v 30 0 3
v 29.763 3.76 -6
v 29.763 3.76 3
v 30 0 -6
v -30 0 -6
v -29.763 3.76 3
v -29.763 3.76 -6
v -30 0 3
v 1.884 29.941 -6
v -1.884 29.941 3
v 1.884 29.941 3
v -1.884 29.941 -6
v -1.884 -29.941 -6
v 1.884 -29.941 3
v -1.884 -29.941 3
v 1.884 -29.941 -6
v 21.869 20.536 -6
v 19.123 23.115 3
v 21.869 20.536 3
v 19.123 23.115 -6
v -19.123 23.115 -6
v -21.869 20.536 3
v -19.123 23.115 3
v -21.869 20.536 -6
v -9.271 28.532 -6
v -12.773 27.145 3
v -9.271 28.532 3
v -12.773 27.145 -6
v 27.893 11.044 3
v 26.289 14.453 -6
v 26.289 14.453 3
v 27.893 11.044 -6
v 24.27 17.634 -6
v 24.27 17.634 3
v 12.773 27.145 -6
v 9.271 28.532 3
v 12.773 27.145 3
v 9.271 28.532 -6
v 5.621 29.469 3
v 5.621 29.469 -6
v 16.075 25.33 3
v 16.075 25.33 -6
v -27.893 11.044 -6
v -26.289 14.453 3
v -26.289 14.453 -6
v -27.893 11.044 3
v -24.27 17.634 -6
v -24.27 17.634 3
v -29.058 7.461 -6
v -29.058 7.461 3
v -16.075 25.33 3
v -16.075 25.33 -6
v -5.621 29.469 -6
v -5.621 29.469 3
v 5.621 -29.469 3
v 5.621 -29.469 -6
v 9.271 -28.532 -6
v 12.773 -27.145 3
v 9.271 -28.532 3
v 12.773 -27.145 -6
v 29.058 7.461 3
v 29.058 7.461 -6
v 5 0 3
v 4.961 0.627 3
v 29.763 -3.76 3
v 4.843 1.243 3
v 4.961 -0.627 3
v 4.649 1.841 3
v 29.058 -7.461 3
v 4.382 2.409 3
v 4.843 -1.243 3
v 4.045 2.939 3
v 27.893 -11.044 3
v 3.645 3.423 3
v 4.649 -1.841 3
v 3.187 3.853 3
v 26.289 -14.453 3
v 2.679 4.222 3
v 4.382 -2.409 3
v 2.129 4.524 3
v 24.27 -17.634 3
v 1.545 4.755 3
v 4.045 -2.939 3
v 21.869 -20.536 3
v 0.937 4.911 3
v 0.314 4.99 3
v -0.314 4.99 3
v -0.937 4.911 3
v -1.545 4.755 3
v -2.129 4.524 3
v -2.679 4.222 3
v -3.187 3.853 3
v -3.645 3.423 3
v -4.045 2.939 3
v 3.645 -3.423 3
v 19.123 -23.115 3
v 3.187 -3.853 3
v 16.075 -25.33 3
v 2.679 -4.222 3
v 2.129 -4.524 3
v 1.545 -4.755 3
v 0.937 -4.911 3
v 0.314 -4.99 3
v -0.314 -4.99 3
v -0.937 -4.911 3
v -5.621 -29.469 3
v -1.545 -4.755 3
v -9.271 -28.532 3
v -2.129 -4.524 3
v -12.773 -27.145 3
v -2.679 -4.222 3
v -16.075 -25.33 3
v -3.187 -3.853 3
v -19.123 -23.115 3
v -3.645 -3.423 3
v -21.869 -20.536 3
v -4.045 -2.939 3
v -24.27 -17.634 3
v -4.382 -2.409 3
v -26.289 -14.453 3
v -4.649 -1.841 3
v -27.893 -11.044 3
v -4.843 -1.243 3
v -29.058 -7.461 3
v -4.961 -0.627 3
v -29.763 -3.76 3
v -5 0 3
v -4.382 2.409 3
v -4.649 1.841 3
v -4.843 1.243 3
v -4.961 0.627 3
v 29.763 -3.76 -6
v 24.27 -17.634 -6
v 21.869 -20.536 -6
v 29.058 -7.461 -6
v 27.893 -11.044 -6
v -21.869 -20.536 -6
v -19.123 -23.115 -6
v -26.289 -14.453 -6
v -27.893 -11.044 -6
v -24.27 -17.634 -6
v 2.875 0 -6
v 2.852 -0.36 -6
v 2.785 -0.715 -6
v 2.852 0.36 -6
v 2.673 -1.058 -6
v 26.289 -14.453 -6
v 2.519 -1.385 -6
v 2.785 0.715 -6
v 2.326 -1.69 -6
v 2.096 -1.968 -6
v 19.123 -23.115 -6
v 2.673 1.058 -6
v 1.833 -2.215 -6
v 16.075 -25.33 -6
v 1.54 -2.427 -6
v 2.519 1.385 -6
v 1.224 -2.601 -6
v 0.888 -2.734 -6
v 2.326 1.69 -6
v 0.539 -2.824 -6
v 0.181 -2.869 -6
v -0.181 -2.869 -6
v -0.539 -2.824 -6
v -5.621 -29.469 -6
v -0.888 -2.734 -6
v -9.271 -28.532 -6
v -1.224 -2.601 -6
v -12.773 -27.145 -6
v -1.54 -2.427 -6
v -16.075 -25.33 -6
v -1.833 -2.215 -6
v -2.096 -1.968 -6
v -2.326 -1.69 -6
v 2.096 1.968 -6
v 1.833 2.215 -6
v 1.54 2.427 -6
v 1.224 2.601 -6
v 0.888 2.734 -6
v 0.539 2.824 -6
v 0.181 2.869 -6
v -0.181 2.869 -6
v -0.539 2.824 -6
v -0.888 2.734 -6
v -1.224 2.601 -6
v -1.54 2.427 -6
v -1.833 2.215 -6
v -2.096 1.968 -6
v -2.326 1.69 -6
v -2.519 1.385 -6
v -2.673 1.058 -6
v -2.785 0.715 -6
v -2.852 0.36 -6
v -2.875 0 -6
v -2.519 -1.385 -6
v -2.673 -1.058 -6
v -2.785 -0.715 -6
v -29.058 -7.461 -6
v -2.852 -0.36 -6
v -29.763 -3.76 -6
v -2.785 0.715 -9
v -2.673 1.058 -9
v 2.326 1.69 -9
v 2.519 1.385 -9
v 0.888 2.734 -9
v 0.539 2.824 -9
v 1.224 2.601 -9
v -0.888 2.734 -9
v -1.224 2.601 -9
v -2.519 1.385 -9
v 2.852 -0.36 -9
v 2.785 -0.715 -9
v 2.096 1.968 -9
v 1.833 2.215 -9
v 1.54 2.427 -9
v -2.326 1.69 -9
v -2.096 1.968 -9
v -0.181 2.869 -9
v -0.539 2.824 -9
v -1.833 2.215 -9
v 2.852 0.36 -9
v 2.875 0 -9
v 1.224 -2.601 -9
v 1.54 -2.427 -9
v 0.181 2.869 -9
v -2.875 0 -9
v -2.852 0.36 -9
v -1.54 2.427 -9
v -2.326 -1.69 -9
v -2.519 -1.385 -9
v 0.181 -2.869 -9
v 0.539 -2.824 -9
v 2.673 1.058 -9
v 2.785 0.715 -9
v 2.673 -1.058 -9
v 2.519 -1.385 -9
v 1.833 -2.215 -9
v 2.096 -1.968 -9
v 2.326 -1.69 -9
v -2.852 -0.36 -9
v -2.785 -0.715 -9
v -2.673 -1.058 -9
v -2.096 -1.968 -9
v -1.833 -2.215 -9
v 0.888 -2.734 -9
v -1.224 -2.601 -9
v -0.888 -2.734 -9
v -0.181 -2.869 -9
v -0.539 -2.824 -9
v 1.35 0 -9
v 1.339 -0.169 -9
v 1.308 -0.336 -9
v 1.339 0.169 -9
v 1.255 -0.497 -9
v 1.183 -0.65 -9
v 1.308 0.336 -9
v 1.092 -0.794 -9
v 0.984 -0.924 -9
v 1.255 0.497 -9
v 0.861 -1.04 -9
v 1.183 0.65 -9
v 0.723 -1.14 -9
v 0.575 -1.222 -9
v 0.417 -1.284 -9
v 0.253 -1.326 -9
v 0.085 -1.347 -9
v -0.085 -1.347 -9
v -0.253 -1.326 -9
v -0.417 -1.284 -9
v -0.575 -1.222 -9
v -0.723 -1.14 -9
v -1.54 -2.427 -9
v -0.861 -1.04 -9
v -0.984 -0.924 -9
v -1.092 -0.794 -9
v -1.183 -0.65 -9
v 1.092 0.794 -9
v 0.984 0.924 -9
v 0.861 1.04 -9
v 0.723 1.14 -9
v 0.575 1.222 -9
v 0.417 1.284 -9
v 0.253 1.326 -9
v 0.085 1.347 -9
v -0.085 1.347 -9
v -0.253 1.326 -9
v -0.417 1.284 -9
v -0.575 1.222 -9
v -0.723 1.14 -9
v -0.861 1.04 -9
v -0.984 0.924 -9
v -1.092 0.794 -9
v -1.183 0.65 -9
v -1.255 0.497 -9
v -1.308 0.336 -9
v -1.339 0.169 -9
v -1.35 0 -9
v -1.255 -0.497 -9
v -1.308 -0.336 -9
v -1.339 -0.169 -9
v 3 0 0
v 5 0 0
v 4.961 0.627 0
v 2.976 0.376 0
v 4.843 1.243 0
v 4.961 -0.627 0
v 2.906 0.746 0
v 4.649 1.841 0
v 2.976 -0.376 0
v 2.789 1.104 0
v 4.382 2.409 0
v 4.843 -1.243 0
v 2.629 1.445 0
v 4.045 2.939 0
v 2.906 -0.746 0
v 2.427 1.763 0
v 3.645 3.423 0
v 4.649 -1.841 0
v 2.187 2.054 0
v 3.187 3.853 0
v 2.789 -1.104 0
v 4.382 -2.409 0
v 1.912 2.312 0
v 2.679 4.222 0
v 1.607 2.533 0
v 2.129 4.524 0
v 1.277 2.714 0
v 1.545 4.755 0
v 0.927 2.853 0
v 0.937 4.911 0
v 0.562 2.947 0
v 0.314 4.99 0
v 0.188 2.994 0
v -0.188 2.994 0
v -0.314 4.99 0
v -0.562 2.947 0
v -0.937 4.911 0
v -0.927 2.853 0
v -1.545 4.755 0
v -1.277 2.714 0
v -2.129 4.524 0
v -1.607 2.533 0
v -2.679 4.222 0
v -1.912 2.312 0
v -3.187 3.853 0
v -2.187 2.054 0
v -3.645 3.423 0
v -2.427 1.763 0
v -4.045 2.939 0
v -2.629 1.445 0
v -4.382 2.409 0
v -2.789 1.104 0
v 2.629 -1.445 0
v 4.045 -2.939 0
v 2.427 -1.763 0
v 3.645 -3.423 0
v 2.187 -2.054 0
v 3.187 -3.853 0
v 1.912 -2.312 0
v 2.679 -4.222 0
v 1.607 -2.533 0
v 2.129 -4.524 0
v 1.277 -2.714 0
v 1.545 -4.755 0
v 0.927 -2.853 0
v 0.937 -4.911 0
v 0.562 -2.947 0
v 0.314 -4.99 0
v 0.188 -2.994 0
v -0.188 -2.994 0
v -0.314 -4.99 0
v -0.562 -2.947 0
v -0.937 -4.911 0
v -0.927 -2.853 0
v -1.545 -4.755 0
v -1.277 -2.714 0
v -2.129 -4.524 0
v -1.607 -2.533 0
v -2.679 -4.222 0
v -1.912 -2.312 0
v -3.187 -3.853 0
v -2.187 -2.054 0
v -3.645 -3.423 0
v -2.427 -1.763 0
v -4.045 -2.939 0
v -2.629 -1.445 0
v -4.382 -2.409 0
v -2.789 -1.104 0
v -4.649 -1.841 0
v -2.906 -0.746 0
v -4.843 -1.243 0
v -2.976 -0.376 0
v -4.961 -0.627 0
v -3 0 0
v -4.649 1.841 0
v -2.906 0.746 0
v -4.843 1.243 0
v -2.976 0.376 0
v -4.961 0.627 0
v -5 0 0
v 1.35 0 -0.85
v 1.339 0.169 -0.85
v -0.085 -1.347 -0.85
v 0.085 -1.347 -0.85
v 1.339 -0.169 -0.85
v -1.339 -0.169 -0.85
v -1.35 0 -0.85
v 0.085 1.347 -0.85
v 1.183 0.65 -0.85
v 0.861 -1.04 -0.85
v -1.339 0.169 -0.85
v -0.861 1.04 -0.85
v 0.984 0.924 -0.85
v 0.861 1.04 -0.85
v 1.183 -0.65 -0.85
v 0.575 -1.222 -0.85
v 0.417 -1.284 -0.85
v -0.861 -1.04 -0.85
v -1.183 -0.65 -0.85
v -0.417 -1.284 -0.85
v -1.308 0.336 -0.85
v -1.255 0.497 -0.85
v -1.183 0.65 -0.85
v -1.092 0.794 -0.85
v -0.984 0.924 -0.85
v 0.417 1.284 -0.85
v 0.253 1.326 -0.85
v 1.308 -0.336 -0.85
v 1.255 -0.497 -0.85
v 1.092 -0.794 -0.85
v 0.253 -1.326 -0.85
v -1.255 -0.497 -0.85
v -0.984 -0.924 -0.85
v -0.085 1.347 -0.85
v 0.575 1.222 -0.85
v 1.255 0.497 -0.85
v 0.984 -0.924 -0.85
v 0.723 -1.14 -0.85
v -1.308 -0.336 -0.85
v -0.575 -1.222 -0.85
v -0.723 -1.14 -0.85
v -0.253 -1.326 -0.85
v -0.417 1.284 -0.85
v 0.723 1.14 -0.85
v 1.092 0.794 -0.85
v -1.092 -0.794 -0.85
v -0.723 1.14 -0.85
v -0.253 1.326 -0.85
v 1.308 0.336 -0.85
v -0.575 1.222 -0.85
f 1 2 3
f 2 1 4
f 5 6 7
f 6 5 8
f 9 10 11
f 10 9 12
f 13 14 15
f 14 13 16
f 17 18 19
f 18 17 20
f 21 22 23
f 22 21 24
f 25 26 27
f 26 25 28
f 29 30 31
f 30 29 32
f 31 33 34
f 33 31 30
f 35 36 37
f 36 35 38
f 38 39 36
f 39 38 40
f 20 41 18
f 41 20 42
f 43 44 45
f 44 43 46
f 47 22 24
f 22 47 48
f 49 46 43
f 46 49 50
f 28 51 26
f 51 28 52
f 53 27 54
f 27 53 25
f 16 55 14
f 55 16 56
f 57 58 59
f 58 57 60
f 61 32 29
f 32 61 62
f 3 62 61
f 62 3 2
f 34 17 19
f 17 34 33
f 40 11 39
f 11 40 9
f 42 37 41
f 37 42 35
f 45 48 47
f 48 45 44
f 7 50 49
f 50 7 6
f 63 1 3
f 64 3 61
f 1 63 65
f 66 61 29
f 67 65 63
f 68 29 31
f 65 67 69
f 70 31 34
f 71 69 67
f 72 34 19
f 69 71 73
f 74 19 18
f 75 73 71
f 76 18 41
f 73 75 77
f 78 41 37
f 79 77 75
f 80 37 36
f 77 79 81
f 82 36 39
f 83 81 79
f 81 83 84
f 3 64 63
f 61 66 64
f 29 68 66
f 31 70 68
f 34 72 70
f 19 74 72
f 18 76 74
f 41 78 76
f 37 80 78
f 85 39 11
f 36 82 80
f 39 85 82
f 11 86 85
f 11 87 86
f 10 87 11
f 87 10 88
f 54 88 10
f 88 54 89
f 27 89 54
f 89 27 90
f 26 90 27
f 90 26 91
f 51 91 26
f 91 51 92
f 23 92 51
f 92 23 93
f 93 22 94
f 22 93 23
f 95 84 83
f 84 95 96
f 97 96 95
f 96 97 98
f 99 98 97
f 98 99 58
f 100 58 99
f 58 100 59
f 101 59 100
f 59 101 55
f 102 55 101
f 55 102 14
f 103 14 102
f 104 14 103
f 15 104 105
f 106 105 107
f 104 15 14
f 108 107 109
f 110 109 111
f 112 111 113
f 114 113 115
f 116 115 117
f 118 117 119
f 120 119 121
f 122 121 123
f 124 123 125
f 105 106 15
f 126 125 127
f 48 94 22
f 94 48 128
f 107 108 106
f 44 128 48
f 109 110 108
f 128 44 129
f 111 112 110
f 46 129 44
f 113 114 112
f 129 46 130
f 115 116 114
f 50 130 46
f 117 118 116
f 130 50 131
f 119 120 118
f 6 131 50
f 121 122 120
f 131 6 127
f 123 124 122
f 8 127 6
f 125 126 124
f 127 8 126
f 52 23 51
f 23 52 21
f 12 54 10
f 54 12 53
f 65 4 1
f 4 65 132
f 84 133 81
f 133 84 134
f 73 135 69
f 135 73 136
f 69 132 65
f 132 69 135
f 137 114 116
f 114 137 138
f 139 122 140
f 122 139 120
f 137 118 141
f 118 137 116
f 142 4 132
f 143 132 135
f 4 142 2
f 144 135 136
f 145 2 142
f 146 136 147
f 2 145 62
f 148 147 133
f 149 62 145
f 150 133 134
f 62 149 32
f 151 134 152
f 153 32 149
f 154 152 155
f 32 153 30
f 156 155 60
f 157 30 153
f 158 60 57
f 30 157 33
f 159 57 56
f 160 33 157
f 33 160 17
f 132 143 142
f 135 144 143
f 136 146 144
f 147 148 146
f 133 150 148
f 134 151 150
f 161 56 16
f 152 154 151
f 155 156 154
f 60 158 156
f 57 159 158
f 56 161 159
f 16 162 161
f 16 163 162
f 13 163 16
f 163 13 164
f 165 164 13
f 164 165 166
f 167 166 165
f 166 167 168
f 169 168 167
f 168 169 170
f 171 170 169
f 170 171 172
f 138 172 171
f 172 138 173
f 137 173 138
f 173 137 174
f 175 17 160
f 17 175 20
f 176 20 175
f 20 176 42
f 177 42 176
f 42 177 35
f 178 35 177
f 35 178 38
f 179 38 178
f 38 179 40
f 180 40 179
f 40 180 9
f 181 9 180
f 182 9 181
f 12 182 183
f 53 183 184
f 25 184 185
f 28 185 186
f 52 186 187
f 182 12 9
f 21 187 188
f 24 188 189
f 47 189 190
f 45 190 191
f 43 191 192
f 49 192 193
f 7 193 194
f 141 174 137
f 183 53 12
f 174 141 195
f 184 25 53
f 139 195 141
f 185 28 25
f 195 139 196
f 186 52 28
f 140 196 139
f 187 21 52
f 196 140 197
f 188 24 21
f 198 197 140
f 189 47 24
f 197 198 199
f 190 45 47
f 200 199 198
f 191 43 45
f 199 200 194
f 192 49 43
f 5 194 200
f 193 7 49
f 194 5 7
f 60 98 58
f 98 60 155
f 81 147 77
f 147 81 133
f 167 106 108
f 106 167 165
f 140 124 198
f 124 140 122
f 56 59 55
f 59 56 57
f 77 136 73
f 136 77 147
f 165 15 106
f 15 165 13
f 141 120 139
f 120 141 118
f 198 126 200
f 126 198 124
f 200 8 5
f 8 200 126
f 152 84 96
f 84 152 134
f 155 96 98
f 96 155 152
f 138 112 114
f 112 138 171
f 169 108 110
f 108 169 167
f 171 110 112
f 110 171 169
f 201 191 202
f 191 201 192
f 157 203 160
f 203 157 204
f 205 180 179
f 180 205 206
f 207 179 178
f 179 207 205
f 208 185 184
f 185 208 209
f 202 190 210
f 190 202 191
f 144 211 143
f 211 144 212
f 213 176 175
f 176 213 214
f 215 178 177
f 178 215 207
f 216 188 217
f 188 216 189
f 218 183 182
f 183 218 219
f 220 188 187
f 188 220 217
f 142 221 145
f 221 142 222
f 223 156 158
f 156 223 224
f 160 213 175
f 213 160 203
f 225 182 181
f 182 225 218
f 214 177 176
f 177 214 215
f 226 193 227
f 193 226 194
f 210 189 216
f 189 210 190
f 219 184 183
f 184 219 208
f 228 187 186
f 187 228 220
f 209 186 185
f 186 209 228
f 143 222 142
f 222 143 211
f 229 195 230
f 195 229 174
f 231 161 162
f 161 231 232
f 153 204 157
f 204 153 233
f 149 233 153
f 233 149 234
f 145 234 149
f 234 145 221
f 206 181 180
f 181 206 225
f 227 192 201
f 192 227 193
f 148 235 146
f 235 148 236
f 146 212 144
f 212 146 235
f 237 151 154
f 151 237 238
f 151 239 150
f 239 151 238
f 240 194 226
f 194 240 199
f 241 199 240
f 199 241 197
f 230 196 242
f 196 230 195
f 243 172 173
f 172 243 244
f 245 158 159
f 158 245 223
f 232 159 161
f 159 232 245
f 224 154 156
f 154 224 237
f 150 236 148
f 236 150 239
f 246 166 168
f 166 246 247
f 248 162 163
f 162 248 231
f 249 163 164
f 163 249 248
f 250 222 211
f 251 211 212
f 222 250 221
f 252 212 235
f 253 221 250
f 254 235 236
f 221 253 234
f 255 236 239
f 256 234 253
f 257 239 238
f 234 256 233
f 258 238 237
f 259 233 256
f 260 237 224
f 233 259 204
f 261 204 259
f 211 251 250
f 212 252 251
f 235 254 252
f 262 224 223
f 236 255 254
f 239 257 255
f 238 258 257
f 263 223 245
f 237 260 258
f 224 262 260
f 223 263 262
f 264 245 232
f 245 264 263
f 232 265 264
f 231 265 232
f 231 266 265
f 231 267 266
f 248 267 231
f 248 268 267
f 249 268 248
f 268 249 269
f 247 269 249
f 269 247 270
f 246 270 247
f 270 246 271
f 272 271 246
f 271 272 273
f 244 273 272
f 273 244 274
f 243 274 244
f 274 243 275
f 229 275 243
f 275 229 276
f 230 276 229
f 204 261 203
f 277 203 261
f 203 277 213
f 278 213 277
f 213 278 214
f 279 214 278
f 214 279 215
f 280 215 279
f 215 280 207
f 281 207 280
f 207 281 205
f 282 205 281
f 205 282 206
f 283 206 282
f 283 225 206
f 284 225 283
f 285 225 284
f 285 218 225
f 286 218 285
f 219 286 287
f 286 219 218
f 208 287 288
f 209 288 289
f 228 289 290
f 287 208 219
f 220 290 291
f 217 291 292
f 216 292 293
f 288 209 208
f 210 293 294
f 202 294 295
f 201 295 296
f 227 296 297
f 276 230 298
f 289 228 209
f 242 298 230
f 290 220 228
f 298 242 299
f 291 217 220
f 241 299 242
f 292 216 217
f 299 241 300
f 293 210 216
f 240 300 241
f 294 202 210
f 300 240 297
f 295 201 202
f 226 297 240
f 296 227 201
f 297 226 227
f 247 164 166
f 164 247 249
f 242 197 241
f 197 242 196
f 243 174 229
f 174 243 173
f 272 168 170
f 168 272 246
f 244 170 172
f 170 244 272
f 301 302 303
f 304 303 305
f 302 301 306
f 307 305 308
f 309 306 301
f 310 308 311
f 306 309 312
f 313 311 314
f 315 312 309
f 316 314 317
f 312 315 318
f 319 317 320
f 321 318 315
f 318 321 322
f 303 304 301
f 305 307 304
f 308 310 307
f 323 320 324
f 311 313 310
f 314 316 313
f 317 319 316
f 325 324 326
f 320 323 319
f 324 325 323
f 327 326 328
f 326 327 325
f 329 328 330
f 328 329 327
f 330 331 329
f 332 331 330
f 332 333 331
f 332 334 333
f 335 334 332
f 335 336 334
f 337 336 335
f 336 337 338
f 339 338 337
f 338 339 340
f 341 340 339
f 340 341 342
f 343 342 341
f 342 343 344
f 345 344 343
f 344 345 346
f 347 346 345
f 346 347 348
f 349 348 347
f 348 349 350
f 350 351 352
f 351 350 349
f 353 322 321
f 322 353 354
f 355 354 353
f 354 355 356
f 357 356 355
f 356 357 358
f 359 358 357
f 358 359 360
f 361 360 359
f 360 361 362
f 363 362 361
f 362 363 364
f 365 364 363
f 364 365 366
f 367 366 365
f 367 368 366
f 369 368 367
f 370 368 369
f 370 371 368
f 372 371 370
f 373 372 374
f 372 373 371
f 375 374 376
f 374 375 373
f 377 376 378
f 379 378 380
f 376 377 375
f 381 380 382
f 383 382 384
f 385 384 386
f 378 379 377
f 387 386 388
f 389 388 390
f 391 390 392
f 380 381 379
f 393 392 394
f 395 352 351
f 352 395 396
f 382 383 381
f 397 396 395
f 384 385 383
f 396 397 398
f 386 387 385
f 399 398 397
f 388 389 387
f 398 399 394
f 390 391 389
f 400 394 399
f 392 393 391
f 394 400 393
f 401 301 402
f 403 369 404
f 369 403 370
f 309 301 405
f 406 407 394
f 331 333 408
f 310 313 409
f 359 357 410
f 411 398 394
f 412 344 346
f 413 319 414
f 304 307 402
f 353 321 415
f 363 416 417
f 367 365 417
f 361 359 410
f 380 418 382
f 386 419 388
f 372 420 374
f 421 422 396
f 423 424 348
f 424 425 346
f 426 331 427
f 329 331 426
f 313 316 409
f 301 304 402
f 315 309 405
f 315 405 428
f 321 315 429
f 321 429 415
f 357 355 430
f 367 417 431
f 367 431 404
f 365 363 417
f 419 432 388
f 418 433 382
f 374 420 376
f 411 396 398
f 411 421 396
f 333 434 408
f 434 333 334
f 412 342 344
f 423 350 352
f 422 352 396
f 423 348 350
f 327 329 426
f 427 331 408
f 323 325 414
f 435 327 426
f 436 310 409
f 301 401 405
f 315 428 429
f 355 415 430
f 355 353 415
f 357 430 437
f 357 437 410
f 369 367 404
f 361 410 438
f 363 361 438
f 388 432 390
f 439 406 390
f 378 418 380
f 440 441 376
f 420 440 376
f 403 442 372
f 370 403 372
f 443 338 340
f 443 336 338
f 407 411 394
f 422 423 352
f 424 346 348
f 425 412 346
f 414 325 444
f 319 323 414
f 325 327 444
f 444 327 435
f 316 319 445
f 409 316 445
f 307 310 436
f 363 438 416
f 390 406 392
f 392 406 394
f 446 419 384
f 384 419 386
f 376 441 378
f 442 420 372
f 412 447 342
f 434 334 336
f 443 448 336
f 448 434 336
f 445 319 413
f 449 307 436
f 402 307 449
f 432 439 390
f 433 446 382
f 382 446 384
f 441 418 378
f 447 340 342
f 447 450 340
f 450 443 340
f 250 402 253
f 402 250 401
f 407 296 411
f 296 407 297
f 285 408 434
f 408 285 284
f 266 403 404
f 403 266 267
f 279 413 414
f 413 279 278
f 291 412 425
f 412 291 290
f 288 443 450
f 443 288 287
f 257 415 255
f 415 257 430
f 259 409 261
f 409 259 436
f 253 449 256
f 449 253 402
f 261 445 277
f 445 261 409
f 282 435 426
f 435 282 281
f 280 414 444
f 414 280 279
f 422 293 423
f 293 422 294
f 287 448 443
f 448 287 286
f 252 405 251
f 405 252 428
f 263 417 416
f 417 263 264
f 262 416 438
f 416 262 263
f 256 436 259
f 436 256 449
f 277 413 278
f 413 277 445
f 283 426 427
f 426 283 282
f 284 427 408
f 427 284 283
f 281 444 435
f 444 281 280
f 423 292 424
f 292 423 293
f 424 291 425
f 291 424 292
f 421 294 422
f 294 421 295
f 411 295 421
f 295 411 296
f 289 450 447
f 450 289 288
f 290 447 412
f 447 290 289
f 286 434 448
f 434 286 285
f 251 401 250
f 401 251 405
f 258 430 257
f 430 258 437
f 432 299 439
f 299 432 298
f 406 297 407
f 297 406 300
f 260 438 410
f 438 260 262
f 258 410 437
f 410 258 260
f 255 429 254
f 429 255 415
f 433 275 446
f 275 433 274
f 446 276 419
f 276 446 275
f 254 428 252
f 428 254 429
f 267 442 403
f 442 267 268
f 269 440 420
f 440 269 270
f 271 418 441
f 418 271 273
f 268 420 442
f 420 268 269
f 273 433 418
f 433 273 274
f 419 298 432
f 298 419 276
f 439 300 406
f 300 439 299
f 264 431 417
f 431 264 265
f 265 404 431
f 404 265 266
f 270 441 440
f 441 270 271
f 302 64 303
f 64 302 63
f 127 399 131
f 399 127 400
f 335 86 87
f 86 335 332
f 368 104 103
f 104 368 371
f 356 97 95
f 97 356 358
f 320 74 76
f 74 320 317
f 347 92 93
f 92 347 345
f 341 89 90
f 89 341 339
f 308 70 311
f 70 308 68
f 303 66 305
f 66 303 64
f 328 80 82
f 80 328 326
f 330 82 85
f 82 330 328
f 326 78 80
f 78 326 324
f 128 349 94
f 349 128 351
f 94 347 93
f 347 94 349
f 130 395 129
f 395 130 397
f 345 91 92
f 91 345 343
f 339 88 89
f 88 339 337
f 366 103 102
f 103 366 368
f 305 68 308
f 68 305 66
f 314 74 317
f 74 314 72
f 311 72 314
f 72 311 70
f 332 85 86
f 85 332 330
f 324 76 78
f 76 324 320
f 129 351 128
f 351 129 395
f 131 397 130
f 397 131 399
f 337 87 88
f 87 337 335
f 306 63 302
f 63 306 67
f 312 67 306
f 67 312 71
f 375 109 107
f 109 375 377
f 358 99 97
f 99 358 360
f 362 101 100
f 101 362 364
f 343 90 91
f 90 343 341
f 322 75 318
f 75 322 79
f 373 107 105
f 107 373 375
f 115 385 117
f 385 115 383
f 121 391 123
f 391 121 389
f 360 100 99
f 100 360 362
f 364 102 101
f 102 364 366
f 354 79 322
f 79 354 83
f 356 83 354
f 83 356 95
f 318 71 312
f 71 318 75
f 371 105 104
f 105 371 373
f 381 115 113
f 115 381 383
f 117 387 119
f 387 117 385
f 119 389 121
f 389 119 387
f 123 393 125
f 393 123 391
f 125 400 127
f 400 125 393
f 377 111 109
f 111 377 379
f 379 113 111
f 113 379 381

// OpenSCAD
$fn = 50;


difference() {
	union() {
		translate(v = [0, 0, -6.0000000000]) {
			cylinder(h = 9, r = 30.0000000000);
		}
		#translate(v = [0, 0, -9.0000000000]) {
			cylinder(h = 9, r = 2.8750000000);
		}
	}
	union() {
		translate(v = [0, 0, 0]) {
			rotate(a = [0, 0, 0]) {
				difference() {
					union() {
						translate(v = [0, 0, -9.0000000000]) {
							cylinder(h = 9, r = 1.0000000000);
						}
						translate(v = [0, 0, -0.8500000000]) {
							cylinder(h = 0.8500000000, r1 = 1.3500000000, r2 = 3.0000000000);
						}
						translate(v = [0, 0, -9.0000000000]) {
							cylinder(h = 9, r = 1.3500000000);
						}
						translate(v = [0, 0, -9.0000000000]) {
							cylinder(h = 9, r = 1.0000000000);
						}
					}
					union();
				}
			}
		}
		#cylinder(h = 3, r = 5.0000000000);
	}
}
